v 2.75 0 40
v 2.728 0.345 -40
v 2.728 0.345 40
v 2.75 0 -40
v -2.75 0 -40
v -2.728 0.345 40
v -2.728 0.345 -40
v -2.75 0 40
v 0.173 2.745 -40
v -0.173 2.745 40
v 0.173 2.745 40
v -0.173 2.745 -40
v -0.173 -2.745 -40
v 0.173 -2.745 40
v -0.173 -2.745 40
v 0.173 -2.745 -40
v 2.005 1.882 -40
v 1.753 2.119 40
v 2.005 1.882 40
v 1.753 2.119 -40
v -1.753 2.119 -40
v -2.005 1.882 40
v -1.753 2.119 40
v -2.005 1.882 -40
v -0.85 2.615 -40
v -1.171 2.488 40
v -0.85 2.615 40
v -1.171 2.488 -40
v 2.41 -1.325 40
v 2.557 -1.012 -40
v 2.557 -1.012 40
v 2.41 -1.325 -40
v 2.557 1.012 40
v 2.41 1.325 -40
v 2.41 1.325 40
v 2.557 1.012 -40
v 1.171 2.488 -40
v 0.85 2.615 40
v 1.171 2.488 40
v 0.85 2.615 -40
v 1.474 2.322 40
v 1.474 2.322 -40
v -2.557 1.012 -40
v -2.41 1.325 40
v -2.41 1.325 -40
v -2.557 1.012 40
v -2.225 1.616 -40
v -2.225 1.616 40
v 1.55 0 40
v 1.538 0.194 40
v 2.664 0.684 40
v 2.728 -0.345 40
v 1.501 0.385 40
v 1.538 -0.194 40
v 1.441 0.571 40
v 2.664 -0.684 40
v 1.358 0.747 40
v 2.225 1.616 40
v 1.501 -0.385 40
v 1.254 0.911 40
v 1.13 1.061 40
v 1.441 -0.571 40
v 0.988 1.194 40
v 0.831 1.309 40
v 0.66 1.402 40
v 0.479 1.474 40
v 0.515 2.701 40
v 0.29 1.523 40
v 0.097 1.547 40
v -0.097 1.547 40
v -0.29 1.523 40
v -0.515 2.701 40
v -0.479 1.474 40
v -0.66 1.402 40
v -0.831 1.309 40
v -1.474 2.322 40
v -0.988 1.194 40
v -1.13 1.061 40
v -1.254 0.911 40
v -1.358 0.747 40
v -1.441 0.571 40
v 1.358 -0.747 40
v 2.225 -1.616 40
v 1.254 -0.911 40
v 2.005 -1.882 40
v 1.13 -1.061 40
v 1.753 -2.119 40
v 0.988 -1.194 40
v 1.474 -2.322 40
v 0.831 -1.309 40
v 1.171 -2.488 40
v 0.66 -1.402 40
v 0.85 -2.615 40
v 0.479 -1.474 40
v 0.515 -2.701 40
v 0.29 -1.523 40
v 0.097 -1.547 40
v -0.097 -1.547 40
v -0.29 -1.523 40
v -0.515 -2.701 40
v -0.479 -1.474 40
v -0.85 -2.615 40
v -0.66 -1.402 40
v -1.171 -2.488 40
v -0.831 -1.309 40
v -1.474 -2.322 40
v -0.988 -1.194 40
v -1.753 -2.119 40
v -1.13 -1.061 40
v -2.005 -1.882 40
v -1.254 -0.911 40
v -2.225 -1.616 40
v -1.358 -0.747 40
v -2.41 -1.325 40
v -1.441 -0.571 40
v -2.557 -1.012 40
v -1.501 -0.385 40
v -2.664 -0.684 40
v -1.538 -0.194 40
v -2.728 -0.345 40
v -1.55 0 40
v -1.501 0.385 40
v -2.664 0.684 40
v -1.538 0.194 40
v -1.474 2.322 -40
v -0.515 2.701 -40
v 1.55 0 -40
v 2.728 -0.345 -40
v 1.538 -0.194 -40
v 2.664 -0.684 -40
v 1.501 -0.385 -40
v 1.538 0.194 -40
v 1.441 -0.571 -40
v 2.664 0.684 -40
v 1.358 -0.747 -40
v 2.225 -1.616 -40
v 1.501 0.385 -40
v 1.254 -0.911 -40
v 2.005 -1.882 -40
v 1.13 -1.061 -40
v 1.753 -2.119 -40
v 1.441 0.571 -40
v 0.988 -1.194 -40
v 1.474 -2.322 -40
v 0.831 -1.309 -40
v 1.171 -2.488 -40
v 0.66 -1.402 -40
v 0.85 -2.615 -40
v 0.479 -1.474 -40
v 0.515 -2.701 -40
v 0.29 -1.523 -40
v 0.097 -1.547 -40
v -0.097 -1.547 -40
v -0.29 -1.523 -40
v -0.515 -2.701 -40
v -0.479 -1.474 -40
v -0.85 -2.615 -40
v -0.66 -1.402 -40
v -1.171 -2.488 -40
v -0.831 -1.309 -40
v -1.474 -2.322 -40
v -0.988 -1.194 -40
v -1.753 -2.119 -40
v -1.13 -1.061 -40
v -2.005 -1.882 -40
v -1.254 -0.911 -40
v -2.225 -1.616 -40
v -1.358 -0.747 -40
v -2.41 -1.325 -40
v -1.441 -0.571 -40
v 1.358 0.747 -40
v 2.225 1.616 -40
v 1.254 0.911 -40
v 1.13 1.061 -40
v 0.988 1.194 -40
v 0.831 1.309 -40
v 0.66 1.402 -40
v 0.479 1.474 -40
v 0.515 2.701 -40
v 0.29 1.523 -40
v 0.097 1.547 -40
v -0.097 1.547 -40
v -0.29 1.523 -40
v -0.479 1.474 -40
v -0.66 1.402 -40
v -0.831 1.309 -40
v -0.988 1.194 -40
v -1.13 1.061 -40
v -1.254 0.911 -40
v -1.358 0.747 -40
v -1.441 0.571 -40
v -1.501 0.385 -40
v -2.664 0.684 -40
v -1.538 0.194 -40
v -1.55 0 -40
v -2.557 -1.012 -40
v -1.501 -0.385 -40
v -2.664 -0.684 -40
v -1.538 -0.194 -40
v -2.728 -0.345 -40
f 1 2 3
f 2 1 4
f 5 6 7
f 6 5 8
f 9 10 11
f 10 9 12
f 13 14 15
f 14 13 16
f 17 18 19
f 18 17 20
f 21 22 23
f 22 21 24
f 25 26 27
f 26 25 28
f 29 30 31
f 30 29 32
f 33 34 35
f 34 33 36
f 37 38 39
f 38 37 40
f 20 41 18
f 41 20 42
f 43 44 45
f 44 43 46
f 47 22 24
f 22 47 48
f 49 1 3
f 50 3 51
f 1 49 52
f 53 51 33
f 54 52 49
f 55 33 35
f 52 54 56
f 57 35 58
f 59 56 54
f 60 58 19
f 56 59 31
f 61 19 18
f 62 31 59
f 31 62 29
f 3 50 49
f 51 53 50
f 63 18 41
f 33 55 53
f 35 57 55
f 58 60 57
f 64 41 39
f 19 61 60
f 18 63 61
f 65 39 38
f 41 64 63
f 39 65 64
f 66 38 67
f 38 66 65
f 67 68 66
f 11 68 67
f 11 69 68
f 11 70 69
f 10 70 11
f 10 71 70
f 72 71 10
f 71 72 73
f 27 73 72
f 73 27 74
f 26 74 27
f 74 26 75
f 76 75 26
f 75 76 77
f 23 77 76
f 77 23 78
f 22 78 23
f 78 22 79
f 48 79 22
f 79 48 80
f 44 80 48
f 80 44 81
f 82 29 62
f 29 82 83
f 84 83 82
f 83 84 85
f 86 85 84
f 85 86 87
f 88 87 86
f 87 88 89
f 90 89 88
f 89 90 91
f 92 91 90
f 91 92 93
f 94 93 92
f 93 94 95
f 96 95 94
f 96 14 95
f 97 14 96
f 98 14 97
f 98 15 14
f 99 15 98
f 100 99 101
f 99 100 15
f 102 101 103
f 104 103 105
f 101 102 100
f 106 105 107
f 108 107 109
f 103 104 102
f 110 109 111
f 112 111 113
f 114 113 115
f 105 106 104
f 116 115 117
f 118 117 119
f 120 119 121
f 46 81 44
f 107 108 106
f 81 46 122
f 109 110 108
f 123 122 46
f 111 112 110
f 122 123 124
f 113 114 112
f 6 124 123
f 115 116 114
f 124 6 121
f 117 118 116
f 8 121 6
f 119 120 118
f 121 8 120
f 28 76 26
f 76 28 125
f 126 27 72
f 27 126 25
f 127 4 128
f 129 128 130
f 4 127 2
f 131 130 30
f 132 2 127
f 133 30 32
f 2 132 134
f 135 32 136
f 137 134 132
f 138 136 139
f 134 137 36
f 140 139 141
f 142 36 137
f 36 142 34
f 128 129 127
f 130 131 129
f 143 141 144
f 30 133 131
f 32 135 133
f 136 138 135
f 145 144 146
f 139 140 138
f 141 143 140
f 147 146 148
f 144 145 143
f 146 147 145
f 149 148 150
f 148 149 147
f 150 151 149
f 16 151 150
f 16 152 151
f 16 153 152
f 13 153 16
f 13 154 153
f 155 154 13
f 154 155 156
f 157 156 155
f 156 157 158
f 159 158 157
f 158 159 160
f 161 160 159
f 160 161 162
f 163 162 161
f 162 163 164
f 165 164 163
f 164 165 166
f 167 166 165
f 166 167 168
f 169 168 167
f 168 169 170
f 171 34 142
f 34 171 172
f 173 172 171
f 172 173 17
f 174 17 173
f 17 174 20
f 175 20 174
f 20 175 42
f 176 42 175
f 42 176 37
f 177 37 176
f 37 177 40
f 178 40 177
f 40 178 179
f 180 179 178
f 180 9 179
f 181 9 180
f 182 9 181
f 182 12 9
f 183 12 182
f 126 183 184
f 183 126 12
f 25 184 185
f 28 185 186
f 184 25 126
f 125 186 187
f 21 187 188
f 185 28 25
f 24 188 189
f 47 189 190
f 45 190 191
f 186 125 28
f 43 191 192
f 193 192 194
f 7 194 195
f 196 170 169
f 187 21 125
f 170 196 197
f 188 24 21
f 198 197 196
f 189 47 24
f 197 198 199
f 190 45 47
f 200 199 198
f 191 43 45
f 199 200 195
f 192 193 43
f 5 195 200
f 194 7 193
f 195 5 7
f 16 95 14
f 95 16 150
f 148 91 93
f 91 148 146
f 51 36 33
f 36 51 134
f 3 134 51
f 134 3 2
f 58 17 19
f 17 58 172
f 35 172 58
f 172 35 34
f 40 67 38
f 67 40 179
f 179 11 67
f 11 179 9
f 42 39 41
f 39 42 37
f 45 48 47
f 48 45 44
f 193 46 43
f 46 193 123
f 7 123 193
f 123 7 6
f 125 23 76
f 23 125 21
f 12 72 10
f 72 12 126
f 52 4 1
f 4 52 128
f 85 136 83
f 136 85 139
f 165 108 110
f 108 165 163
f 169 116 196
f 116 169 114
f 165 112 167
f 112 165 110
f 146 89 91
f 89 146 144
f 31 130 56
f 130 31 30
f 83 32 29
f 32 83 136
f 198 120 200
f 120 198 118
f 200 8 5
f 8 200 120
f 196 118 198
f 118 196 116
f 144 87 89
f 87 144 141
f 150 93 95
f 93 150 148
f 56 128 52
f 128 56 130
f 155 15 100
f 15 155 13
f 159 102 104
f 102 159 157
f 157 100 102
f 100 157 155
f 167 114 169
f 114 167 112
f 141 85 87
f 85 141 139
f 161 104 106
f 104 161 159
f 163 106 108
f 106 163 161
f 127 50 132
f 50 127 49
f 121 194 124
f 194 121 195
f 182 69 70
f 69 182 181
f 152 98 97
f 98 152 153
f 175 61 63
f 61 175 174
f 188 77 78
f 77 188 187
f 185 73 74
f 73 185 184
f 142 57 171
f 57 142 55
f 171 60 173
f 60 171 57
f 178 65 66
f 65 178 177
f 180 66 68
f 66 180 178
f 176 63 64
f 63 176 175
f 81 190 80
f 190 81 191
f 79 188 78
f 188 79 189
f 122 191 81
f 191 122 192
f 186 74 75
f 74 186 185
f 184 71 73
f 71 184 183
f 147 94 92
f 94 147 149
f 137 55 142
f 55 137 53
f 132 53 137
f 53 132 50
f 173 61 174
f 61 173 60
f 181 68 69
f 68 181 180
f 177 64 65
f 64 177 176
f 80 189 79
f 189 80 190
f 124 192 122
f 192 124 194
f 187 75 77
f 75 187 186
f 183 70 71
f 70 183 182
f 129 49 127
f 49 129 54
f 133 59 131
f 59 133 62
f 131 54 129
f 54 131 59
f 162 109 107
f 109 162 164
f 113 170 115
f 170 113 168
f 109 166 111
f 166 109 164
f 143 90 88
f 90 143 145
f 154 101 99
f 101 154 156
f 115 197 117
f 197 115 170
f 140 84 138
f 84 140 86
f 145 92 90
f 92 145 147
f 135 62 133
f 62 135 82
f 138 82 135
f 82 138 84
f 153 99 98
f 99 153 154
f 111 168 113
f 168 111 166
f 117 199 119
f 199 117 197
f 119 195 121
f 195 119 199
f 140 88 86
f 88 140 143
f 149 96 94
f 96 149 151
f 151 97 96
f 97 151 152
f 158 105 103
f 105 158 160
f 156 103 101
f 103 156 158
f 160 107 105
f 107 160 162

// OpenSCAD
$fn = 50;


difference() {
	union() {
		translate(v = [0, 0, -40.0000000000]) {
			cylinder(h = 80, r = 2.7500000000);
		}
	}
	union() {
		translate(v = [0, 0, -100.0000000000]) {
			cylinder(h = 200, r = 1.5500000000);
		}
	}
}
